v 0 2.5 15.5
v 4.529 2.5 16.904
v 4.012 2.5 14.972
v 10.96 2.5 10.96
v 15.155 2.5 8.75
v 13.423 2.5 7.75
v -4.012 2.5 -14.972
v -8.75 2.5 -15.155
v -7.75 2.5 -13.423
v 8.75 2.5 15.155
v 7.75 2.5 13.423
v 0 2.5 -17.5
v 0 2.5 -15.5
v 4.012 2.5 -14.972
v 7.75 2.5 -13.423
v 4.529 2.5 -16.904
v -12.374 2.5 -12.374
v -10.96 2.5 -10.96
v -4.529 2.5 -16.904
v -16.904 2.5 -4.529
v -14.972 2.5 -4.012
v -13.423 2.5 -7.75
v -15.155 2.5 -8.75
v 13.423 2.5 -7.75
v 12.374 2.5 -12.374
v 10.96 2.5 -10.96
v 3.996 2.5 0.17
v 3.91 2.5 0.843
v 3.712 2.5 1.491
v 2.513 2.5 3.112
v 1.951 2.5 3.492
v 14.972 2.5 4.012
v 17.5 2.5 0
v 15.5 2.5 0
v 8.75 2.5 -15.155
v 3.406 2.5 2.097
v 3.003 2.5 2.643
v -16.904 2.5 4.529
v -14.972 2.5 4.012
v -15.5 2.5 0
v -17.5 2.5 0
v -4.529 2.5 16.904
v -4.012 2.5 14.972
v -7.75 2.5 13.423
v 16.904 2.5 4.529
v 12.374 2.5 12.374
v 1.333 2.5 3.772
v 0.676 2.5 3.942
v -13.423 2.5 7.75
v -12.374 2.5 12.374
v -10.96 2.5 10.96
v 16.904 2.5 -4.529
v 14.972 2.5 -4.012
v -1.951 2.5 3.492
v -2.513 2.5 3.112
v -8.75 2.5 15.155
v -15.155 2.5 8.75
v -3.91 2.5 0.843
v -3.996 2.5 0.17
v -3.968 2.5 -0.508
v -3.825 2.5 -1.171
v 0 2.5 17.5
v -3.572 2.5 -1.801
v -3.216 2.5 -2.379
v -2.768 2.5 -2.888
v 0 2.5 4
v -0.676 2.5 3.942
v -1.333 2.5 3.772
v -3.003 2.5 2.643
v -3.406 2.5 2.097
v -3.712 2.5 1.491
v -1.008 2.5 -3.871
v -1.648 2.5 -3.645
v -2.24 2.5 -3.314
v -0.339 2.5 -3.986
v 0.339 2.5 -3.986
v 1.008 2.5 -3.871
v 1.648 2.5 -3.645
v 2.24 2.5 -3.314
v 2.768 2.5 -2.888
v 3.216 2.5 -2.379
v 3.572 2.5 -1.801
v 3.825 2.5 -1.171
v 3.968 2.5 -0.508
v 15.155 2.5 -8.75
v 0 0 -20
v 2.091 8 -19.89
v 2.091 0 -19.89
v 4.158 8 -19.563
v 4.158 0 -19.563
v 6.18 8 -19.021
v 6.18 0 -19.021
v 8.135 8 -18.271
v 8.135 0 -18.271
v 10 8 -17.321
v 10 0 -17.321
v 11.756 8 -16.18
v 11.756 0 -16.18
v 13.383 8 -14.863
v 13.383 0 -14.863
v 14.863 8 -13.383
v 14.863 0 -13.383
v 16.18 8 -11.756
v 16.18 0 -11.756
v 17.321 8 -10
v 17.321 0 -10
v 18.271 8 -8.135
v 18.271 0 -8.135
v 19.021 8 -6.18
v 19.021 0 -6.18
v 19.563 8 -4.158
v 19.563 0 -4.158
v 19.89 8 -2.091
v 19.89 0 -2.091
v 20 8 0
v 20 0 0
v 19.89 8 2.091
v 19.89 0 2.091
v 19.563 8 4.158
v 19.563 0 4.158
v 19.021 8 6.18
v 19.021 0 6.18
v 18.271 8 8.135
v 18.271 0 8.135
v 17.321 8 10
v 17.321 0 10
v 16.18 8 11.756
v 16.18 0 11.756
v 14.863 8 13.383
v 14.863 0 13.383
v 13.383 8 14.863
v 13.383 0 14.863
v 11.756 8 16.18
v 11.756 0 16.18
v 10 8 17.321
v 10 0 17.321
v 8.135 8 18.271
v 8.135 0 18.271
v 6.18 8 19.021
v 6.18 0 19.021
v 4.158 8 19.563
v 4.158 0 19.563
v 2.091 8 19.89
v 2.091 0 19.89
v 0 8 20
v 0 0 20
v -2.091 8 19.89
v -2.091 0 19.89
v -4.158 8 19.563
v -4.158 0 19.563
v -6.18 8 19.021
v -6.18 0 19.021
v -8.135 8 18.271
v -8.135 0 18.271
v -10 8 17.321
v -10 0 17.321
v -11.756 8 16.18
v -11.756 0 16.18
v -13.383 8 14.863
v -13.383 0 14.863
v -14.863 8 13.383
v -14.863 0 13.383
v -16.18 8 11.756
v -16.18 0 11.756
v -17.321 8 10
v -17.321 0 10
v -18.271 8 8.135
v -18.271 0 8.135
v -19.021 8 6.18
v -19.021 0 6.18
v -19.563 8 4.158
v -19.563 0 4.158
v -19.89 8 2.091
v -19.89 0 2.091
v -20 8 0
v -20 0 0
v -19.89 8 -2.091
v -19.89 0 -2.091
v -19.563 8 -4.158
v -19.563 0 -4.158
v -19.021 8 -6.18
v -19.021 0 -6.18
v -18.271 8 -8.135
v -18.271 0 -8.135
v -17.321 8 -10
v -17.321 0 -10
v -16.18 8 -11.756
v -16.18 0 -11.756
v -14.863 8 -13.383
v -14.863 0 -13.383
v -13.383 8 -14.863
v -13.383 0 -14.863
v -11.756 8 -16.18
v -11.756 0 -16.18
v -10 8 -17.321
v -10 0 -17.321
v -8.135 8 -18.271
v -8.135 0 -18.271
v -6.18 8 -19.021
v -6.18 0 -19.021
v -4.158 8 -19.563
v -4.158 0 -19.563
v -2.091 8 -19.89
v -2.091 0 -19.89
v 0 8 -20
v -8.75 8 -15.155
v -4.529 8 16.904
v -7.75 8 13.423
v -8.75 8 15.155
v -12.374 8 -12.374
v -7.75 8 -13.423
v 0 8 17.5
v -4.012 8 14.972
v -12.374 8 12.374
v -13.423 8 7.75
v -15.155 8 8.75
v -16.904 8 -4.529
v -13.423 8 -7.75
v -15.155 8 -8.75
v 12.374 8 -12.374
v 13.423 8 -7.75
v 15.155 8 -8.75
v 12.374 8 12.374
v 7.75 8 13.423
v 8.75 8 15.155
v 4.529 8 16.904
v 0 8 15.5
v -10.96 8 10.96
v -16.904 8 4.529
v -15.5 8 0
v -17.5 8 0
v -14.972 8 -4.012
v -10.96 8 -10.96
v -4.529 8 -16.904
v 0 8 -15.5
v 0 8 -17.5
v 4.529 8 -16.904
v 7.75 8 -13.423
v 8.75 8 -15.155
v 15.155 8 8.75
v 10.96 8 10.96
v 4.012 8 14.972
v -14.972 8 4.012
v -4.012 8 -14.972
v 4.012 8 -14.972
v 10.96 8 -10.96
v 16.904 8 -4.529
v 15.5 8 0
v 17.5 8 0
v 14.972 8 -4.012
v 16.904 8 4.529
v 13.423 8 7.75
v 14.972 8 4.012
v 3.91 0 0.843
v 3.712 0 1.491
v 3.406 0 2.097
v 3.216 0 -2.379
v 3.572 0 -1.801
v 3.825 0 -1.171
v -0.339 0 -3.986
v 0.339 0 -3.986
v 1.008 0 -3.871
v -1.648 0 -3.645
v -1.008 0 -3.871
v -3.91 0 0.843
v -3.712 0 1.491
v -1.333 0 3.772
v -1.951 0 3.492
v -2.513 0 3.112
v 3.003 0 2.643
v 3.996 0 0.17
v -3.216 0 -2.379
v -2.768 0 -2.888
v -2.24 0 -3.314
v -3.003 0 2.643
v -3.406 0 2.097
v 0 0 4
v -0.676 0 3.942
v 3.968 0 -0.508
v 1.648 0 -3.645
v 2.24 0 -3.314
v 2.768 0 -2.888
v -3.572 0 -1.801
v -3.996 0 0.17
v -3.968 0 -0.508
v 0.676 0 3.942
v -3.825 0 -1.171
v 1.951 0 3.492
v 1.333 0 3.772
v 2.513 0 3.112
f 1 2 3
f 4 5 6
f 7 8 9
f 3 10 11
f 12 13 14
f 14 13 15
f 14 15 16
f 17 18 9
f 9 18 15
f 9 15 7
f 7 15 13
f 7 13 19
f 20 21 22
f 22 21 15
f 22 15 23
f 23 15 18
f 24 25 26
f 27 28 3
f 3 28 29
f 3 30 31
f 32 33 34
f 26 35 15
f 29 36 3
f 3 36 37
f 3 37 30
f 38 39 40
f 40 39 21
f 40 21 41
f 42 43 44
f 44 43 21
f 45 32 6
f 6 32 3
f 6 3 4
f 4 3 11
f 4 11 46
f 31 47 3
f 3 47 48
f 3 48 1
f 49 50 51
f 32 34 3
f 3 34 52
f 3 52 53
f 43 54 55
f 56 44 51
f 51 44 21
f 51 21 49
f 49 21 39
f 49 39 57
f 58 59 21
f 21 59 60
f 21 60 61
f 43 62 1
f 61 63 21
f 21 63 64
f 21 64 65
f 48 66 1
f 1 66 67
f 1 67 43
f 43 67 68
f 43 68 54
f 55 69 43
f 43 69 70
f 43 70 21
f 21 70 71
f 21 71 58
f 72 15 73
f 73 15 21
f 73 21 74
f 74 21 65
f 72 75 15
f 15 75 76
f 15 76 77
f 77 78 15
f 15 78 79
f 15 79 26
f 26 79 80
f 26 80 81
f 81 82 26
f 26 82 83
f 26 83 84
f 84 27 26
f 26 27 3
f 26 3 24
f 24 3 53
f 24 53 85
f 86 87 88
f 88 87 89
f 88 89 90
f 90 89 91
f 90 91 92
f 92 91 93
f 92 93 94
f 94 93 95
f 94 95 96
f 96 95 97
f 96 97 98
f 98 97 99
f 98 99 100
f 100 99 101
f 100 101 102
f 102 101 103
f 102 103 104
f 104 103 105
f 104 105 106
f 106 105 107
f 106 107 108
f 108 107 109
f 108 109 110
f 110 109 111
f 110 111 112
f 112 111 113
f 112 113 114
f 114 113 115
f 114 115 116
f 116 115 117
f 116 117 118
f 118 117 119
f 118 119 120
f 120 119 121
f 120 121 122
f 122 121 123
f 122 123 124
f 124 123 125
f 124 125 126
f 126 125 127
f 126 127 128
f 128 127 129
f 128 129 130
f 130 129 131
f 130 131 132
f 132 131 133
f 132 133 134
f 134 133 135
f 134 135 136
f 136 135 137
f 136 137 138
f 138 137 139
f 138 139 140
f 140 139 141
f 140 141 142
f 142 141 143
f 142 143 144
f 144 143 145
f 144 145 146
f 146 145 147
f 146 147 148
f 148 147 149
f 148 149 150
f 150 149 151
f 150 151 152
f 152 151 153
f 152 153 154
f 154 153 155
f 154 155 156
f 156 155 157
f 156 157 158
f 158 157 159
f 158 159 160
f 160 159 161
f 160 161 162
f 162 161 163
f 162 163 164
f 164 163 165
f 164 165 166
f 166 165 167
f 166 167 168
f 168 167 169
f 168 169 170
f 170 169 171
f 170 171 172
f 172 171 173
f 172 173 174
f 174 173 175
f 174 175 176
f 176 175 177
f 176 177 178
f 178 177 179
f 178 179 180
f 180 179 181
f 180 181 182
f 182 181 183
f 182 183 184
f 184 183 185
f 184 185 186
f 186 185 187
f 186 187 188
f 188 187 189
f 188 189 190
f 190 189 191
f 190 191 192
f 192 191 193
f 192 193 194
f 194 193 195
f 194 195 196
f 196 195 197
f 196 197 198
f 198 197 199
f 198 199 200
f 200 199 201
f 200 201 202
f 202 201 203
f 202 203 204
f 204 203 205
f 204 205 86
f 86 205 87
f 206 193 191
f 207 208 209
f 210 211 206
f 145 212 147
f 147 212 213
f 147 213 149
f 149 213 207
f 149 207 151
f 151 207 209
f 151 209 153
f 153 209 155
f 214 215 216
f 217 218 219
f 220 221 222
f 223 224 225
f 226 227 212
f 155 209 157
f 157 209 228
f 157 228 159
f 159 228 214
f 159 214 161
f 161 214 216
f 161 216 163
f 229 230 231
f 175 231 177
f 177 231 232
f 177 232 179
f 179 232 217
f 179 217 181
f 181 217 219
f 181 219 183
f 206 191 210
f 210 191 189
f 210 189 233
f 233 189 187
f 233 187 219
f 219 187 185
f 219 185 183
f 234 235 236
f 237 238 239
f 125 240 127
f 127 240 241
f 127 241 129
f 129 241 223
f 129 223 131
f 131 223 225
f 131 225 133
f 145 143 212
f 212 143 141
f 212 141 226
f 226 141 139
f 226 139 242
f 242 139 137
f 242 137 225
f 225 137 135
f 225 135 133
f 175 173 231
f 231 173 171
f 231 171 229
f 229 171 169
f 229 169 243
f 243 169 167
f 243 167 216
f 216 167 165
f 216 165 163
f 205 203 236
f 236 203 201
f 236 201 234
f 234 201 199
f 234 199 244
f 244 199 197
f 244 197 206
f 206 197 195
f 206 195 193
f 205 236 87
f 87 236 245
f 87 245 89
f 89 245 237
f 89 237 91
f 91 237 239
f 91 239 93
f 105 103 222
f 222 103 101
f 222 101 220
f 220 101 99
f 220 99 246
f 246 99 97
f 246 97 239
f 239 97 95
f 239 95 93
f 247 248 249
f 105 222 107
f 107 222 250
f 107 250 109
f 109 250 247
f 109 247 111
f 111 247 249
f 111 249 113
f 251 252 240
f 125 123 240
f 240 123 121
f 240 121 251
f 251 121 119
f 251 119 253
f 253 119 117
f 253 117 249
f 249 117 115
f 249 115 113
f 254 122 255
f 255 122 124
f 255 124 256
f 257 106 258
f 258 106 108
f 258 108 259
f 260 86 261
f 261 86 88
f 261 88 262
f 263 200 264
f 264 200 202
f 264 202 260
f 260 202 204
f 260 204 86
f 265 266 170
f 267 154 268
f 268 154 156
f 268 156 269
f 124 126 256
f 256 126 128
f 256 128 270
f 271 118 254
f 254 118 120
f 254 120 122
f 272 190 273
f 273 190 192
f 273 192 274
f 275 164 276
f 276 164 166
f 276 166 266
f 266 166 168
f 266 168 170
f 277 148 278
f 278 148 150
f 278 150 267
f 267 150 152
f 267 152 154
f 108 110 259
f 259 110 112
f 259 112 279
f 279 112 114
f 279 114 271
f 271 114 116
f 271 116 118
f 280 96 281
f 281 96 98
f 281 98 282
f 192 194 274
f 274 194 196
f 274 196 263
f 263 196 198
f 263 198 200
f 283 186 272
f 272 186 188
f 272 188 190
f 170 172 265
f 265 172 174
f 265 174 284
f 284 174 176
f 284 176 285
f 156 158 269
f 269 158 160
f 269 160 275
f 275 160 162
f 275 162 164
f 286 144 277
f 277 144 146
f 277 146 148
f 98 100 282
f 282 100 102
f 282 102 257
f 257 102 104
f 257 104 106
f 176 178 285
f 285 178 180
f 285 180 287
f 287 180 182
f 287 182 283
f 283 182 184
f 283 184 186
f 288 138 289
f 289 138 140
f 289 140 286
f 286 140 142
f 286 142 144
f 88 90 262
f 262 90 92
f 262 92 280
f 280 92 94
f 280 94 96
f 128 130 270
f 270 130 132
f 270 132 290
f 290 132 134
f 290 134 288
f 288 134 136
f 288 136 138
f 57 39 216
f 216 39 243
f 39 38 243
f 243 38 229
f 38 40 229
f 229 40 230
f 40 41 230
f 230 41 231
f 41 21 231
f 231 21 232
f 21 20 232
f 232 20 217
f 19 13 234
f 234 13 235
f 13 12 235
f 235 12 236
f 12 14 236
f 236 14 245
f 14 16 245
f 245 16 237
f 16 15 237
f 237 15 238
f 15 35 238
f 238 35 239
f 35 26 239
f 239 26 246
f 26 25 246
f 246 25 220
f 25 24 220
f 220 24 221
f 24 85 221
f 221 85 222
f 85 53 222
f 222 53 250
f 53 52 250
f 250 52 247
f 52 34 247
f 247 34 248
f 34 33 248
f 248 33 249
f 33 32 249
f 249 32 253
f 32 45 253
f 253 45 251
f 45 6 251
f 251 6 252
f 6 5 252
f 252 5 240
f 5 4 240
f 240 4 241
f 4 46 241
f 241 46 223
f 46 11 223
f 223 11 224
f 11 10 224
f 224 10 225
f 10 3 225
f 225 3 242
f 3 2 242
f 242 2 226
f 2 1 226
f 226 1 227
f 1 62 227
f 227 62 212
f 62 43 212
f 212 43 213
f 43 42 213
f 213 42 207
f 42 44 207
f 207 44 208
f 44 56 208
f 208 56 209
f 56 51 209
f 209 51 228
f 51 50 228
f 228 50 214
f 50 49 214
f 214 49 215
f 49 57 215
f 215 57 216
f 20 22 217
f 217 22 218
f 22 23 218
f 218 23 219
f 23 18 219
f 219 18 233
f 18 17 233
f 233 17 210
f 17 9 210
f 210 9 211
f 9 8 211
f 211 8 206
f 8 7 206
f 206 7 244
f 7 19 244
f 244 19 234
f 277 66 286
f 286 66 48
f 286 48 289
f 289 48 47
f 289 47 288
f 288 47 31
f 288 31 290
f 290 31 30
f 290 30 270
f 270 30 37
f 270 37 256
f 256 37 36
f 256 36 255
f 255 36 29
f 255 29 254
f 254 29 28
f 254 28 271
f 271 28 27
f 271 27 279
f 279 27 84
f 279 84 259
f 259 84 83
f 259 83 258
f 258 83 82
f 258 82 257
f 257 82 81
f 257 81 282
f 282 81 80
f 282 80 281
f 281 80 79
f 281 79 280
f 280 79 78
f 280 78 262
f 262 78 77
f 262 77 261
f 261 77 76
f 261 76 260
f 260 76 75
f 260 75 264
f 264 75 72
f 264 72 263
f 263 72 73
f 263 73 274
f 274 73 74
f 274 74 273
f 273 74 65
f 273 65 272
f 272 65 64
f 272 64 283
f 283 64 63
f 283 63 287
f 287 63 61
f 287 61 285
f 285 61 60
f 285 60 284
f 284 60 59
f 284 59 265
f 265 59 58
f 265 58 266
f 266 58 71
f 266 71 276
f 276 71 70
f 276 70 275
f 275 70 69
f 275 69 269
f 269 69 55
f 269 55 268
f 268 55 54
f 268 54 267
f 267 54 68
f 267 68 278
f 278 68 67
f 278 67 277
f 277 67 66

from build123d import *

# Parameters (mm, degrees)
SKETCH1_R           = 20
SKETCH1_R_2         = 17.5
BOSS_EXTRUDE2_DEPTH = 8
SHELL2_T            = -2.5
BOSS_EXTRUDE3_DEPTH = 5.5
SKETCH4_R           = 4
CUT_EXTRUDE1_DEPTH  = 12


with BuildPart() as part:
    # Sketch1 → Boss-Extrude2 (new body)
    # profile 1 of 2: a face of its own
    with BuildSketch(Plane(origin=(0, 0, 0), x_dir=(1, 0, 0), z_dir=(0, 1, 0))):
        with Locations(Location((0, 0, 0), (0, 0, 270))):
            Circle(SKETCH1_R)
        Circle(SKETCH1_R_2, mode=Mode.SUBTRACT)
    # profile 2 of 2: a face of its own
    with BuildSketch(Plane(origin=(0, 0, 0), x_dir=(1, 0, 0), z_dir=(0, 1, 0))):
        Circle(SKETCH1_R_2)
    extrude(amount=BOSS_EXTRUDE2_DEPTH)

    # Shell2
    shell2_openings = [part.faces().sort_by_distance(p)[0] for p in [
        (0, 8, 0),
    ]]
    offset(amount=SHELL2_T, openings=shell2_openings, kind=Kind.INTERSECTION)

    # Sketch3 → Boss-Extrude3 (add)
    with BuildSketch(Plane(origin=(0, 2.5, 0), x_dir=(1, 0, 0), z_dir=(0, 1, 0))):
        with BuildLine():
            Line((-14.971850307, -4.011695199), (-16.90370196, -4.529333289))
            ThreePointArc((-16.90370196, -4.529333289), (-16.167891819, -6.696960066), (-15.155444566, -8.75))
            Line((-15.155444566, -8.75), (-14.971850307, -4.011695199))
        make_face()
        with BuildLine():
            Line((-15.5, 0), (-17.5, 0))
            ThreePointArc((-17.5, 0), (-17.350285074, -2.284208364), (-16.90370196, -4.529333289))
            Line((-16.90370196, -4.529333289), (-15.5, 0))
        make_face()
        with BuildLine():
            Line((-14.971850307, 4.011695199), (-16.90370196, 4.529333289))
            ThreePointArc((-16.90370196, 4.529333289), (-17.350285074, 2.284208364), (-17.5, 0))
            Line((-17.5, 0), (-14.971850307, 4.011695199))
        make_face()
        with BuildLine():
            ThreePointArc((0, 17.5), (-2.284208364, 17.350285074), (-4.529333289, 16.90370196))
            Line((-4.529333289, 16.90370196), (0, 15.5))
            Line((0, 15.5), (0, 17.5))
        make_face()
        with BuildLine():
            ThreePointArc((4.529333289, 16.90370196), (2.284208364, 17.350285074), (0, 17.5))
            Line((0, 17.5), (4.011695199, 14.971850307))
            Line((4.011695199, 14.971850307), (4.529333289, 16.90370196))
        make_face()
        with BuildLine():
            ThreePointArc((8.75, 15.155444566), (6.696960066, 16.167891819), (4.529333289, 16.90370196))
            Line((4.529333289, 16.90370196), (7.75, 13.423393759))
            Line((7.75, 13.423393759), (8.75, 15.155444566))
        make_face()
        with BuildLine():
            ThreePointArc((12.374368671, 12.374368671), (10.653325008, 13.883683455), (8.75, 15.155444566))
            Line((8.75, 15.155444566), (10.960155108, 10.960155108))
            Line((10.960155108, 10.960155108), (12.374368671, 12.374368671))
        make_face()
        with BuildLine():
            ThreePointArc((15.155444566, 8.75), (13.883683455, 10.653325008), (12.374368671, 12.374368671))
            Line((12.374368671, 12.374368671), (13.423393759, 7.75))
            Line((13.423393759, 7.75), (15.155444566, 8.75))
        make_face()
        with BuildLine():
            ThreePointArc((16.90370196, 4.529333289), (16.167891819, 6.696960066), (15.155444566, 8.75))
            Line((15.155444566, 8.75), (14.971850307, 4.011695199))
            Line((14.971850307, 4.011695199), (16.90370196, 4.529333289))
        make_face()
        with BuildLine():
            ThreePointArc((17.5, 0), (17.350285074, 2.284208364), (16.90370196, 4.529333289))
            Line((16.90370196, 4.529333289), (15.5, 0))
            Line((15.5, 0), (17.5, 0))
        make_face()
        with BuildLine():
            ThreePointArc((16.90370196, -4.529333289), (17.350285074, -2.284208364), (17.5, 0))
            Line((17.5, 0), (14.971850307, -4.011695199))
            Line((14.971850307, -4.011695199), (16.90370196, -4.529333289))
        make_face()
        with BuildLine():
            ThreePointArc((15.155444566, -8.75), (16.167891819, -6.696960066), (16.90370196, -4.529333289))
            Line((16.90370196, -4.529333289), (13.423393759, -7.75))
            Line((13.423393759, -7.75), (15.155444566, -8.75))
        make_face()
        with BuildLine():
            ThreePointArc((12.374368671, -12.374368671), (13.883683455, -10.653325008), (15.155444566, -8.75))
            Line((15.155444566, -8.75), (10.960155108, -10.960155108))
            Line((10.960155108, -10.960155108), (12.374368671, -12.374368671))
        make_face()
        with BuildLine():
            ThreePointArc((8.75, -15.155444566), (10.653325008, -13.883683455), (12.374368671, -12.374368671))
            Line((12.374368671, -12.374368671), (7.75, -13.423393759))
            Line((7.75, -13.423393759), (8.75, -15.155444566))
        make_face()
        with BuildLine():
            ThreePointArc((4.529333289, -16.90370196), (6.696960066, -16.167891819), (8.75, -15.155444566))
            Line((8.75, -15.155444566), (4.011695199, -14.971850307))
            Line((4.011695199, -14.971850307), (4.529333289, -16.90370196))
        make_face()
        with BuildLine():
            Line((0, -15.5), (0, -17.5))
            ThreePointArc((0, -17.5), (2.284208364, -17.350285074), (4.529333289, -16.90370196))
            Line((4.529333289, -16.90370196), (0, -15.5))
        make_face()
        with BuildLine():
            Line((-4.011695199, -14.971850307), (-4.529333289, -16.90370196))
            ThreePointArc((-4.529333289, -16.90370196), (-2.284208364, -17.350285074), (0, -17.5))
            Line((0, -17.5), (-4.011695199, -14.971850307))
        make_face()
        with BuildLine():
            Line((-7.75, -13.423393759), (-8.75, -15.155444566))
            ThreePointArc((-8.75, -15.155444566), (-6.696960066, -16.167891819), (-4.529333289, -16.90370196))
            Line((-4.529333289, -16.90370196), (-7.75, -13.423393759))
        make_face()
        with BuildLine():
            Line((-10.960155108, -10.960155108), (-12.374368671, -12.374368671))
            ThreePointArc((-12.374368671, -12.374368671), (-10.653325008, -13.883683455), (-8.75, -15.155444566))
            Line((-8.75, -15.155444566), (-10.960155108, -10.960155108))
        make_face()
        with BuildLine():
            Line((-13.423393759, -7.75), (-15.155444566, -8.75))
            ThreePointArc((-15.155444566, -8.75), (-13.883683455, -10.653325008), (-12.374368671, -12.374368671))
            Line((-12.374368671, -12.374368671), (-13.423393759, -7.75))
        make_face()
        with BuildLine():
            Line((-13.423393759, 7.75), (-15.155444566, 8.75))
            ThreePointArc((-15.155444566, 8.75), (-16.167891819, 6.696960066), (-16.90370196, 4.529333289))
            Line((-16.90370196, 4.529333289), (-13.423393759, 7.75))
        make_face()
        with BuildLine():
            Line((-10.960155108, 10.960155108), (-12.374368671, 12.374368671))
            ThreePointArc((-12.374368671, 12.374368671), (-13.883683455, 10.653325008), (-15.155444566, 8.75))
            Line((-15.155444566, 8.75), (-10.960155108, 10.960155108))
        make_face()
        with BuildLine():
            Line((-7.75, 13.423393759), (-8.75, 15.155444566))
            ThreePointArc((-8.75, 15.155444566), (-10.653325008, 13.883683455), (-12.374368671, 12.374368671))
            Line((-12.374368671, 12.374368671), (-7.75, 13.423393759))
        make_face()
        with BuildLine():
            Line((-4.011695199, 14.971850307), (-4.529333289, 16.90370196))
            ThreePointArc((-4.529333289, 16.90370196), (-6.696960066, 16.167891819), (-8.75, 15.155444566))
            Line((-8.75, 15.155444566), (-4.011695199, 14.971850307))
        make_face()
    extrude(amount=BOSS_EXTRUDE3_DEPTH)

    # Sketch4 → Cut-Extrude1 (cut)
    with BuildSketch(Plane(origin=(0, 2.5, 0), x_dir=(1, 0, 0), z_dir=(0, 1, 0))):
        with Locations(Location((0, 0, 0), (0, 0, 270))):
            Circle(SKETCH4_R)
    extrude(amount=-CUT_EXTRUDE1_DEPTH, mode=Mode.SUBTRACT)


solid = part.part
